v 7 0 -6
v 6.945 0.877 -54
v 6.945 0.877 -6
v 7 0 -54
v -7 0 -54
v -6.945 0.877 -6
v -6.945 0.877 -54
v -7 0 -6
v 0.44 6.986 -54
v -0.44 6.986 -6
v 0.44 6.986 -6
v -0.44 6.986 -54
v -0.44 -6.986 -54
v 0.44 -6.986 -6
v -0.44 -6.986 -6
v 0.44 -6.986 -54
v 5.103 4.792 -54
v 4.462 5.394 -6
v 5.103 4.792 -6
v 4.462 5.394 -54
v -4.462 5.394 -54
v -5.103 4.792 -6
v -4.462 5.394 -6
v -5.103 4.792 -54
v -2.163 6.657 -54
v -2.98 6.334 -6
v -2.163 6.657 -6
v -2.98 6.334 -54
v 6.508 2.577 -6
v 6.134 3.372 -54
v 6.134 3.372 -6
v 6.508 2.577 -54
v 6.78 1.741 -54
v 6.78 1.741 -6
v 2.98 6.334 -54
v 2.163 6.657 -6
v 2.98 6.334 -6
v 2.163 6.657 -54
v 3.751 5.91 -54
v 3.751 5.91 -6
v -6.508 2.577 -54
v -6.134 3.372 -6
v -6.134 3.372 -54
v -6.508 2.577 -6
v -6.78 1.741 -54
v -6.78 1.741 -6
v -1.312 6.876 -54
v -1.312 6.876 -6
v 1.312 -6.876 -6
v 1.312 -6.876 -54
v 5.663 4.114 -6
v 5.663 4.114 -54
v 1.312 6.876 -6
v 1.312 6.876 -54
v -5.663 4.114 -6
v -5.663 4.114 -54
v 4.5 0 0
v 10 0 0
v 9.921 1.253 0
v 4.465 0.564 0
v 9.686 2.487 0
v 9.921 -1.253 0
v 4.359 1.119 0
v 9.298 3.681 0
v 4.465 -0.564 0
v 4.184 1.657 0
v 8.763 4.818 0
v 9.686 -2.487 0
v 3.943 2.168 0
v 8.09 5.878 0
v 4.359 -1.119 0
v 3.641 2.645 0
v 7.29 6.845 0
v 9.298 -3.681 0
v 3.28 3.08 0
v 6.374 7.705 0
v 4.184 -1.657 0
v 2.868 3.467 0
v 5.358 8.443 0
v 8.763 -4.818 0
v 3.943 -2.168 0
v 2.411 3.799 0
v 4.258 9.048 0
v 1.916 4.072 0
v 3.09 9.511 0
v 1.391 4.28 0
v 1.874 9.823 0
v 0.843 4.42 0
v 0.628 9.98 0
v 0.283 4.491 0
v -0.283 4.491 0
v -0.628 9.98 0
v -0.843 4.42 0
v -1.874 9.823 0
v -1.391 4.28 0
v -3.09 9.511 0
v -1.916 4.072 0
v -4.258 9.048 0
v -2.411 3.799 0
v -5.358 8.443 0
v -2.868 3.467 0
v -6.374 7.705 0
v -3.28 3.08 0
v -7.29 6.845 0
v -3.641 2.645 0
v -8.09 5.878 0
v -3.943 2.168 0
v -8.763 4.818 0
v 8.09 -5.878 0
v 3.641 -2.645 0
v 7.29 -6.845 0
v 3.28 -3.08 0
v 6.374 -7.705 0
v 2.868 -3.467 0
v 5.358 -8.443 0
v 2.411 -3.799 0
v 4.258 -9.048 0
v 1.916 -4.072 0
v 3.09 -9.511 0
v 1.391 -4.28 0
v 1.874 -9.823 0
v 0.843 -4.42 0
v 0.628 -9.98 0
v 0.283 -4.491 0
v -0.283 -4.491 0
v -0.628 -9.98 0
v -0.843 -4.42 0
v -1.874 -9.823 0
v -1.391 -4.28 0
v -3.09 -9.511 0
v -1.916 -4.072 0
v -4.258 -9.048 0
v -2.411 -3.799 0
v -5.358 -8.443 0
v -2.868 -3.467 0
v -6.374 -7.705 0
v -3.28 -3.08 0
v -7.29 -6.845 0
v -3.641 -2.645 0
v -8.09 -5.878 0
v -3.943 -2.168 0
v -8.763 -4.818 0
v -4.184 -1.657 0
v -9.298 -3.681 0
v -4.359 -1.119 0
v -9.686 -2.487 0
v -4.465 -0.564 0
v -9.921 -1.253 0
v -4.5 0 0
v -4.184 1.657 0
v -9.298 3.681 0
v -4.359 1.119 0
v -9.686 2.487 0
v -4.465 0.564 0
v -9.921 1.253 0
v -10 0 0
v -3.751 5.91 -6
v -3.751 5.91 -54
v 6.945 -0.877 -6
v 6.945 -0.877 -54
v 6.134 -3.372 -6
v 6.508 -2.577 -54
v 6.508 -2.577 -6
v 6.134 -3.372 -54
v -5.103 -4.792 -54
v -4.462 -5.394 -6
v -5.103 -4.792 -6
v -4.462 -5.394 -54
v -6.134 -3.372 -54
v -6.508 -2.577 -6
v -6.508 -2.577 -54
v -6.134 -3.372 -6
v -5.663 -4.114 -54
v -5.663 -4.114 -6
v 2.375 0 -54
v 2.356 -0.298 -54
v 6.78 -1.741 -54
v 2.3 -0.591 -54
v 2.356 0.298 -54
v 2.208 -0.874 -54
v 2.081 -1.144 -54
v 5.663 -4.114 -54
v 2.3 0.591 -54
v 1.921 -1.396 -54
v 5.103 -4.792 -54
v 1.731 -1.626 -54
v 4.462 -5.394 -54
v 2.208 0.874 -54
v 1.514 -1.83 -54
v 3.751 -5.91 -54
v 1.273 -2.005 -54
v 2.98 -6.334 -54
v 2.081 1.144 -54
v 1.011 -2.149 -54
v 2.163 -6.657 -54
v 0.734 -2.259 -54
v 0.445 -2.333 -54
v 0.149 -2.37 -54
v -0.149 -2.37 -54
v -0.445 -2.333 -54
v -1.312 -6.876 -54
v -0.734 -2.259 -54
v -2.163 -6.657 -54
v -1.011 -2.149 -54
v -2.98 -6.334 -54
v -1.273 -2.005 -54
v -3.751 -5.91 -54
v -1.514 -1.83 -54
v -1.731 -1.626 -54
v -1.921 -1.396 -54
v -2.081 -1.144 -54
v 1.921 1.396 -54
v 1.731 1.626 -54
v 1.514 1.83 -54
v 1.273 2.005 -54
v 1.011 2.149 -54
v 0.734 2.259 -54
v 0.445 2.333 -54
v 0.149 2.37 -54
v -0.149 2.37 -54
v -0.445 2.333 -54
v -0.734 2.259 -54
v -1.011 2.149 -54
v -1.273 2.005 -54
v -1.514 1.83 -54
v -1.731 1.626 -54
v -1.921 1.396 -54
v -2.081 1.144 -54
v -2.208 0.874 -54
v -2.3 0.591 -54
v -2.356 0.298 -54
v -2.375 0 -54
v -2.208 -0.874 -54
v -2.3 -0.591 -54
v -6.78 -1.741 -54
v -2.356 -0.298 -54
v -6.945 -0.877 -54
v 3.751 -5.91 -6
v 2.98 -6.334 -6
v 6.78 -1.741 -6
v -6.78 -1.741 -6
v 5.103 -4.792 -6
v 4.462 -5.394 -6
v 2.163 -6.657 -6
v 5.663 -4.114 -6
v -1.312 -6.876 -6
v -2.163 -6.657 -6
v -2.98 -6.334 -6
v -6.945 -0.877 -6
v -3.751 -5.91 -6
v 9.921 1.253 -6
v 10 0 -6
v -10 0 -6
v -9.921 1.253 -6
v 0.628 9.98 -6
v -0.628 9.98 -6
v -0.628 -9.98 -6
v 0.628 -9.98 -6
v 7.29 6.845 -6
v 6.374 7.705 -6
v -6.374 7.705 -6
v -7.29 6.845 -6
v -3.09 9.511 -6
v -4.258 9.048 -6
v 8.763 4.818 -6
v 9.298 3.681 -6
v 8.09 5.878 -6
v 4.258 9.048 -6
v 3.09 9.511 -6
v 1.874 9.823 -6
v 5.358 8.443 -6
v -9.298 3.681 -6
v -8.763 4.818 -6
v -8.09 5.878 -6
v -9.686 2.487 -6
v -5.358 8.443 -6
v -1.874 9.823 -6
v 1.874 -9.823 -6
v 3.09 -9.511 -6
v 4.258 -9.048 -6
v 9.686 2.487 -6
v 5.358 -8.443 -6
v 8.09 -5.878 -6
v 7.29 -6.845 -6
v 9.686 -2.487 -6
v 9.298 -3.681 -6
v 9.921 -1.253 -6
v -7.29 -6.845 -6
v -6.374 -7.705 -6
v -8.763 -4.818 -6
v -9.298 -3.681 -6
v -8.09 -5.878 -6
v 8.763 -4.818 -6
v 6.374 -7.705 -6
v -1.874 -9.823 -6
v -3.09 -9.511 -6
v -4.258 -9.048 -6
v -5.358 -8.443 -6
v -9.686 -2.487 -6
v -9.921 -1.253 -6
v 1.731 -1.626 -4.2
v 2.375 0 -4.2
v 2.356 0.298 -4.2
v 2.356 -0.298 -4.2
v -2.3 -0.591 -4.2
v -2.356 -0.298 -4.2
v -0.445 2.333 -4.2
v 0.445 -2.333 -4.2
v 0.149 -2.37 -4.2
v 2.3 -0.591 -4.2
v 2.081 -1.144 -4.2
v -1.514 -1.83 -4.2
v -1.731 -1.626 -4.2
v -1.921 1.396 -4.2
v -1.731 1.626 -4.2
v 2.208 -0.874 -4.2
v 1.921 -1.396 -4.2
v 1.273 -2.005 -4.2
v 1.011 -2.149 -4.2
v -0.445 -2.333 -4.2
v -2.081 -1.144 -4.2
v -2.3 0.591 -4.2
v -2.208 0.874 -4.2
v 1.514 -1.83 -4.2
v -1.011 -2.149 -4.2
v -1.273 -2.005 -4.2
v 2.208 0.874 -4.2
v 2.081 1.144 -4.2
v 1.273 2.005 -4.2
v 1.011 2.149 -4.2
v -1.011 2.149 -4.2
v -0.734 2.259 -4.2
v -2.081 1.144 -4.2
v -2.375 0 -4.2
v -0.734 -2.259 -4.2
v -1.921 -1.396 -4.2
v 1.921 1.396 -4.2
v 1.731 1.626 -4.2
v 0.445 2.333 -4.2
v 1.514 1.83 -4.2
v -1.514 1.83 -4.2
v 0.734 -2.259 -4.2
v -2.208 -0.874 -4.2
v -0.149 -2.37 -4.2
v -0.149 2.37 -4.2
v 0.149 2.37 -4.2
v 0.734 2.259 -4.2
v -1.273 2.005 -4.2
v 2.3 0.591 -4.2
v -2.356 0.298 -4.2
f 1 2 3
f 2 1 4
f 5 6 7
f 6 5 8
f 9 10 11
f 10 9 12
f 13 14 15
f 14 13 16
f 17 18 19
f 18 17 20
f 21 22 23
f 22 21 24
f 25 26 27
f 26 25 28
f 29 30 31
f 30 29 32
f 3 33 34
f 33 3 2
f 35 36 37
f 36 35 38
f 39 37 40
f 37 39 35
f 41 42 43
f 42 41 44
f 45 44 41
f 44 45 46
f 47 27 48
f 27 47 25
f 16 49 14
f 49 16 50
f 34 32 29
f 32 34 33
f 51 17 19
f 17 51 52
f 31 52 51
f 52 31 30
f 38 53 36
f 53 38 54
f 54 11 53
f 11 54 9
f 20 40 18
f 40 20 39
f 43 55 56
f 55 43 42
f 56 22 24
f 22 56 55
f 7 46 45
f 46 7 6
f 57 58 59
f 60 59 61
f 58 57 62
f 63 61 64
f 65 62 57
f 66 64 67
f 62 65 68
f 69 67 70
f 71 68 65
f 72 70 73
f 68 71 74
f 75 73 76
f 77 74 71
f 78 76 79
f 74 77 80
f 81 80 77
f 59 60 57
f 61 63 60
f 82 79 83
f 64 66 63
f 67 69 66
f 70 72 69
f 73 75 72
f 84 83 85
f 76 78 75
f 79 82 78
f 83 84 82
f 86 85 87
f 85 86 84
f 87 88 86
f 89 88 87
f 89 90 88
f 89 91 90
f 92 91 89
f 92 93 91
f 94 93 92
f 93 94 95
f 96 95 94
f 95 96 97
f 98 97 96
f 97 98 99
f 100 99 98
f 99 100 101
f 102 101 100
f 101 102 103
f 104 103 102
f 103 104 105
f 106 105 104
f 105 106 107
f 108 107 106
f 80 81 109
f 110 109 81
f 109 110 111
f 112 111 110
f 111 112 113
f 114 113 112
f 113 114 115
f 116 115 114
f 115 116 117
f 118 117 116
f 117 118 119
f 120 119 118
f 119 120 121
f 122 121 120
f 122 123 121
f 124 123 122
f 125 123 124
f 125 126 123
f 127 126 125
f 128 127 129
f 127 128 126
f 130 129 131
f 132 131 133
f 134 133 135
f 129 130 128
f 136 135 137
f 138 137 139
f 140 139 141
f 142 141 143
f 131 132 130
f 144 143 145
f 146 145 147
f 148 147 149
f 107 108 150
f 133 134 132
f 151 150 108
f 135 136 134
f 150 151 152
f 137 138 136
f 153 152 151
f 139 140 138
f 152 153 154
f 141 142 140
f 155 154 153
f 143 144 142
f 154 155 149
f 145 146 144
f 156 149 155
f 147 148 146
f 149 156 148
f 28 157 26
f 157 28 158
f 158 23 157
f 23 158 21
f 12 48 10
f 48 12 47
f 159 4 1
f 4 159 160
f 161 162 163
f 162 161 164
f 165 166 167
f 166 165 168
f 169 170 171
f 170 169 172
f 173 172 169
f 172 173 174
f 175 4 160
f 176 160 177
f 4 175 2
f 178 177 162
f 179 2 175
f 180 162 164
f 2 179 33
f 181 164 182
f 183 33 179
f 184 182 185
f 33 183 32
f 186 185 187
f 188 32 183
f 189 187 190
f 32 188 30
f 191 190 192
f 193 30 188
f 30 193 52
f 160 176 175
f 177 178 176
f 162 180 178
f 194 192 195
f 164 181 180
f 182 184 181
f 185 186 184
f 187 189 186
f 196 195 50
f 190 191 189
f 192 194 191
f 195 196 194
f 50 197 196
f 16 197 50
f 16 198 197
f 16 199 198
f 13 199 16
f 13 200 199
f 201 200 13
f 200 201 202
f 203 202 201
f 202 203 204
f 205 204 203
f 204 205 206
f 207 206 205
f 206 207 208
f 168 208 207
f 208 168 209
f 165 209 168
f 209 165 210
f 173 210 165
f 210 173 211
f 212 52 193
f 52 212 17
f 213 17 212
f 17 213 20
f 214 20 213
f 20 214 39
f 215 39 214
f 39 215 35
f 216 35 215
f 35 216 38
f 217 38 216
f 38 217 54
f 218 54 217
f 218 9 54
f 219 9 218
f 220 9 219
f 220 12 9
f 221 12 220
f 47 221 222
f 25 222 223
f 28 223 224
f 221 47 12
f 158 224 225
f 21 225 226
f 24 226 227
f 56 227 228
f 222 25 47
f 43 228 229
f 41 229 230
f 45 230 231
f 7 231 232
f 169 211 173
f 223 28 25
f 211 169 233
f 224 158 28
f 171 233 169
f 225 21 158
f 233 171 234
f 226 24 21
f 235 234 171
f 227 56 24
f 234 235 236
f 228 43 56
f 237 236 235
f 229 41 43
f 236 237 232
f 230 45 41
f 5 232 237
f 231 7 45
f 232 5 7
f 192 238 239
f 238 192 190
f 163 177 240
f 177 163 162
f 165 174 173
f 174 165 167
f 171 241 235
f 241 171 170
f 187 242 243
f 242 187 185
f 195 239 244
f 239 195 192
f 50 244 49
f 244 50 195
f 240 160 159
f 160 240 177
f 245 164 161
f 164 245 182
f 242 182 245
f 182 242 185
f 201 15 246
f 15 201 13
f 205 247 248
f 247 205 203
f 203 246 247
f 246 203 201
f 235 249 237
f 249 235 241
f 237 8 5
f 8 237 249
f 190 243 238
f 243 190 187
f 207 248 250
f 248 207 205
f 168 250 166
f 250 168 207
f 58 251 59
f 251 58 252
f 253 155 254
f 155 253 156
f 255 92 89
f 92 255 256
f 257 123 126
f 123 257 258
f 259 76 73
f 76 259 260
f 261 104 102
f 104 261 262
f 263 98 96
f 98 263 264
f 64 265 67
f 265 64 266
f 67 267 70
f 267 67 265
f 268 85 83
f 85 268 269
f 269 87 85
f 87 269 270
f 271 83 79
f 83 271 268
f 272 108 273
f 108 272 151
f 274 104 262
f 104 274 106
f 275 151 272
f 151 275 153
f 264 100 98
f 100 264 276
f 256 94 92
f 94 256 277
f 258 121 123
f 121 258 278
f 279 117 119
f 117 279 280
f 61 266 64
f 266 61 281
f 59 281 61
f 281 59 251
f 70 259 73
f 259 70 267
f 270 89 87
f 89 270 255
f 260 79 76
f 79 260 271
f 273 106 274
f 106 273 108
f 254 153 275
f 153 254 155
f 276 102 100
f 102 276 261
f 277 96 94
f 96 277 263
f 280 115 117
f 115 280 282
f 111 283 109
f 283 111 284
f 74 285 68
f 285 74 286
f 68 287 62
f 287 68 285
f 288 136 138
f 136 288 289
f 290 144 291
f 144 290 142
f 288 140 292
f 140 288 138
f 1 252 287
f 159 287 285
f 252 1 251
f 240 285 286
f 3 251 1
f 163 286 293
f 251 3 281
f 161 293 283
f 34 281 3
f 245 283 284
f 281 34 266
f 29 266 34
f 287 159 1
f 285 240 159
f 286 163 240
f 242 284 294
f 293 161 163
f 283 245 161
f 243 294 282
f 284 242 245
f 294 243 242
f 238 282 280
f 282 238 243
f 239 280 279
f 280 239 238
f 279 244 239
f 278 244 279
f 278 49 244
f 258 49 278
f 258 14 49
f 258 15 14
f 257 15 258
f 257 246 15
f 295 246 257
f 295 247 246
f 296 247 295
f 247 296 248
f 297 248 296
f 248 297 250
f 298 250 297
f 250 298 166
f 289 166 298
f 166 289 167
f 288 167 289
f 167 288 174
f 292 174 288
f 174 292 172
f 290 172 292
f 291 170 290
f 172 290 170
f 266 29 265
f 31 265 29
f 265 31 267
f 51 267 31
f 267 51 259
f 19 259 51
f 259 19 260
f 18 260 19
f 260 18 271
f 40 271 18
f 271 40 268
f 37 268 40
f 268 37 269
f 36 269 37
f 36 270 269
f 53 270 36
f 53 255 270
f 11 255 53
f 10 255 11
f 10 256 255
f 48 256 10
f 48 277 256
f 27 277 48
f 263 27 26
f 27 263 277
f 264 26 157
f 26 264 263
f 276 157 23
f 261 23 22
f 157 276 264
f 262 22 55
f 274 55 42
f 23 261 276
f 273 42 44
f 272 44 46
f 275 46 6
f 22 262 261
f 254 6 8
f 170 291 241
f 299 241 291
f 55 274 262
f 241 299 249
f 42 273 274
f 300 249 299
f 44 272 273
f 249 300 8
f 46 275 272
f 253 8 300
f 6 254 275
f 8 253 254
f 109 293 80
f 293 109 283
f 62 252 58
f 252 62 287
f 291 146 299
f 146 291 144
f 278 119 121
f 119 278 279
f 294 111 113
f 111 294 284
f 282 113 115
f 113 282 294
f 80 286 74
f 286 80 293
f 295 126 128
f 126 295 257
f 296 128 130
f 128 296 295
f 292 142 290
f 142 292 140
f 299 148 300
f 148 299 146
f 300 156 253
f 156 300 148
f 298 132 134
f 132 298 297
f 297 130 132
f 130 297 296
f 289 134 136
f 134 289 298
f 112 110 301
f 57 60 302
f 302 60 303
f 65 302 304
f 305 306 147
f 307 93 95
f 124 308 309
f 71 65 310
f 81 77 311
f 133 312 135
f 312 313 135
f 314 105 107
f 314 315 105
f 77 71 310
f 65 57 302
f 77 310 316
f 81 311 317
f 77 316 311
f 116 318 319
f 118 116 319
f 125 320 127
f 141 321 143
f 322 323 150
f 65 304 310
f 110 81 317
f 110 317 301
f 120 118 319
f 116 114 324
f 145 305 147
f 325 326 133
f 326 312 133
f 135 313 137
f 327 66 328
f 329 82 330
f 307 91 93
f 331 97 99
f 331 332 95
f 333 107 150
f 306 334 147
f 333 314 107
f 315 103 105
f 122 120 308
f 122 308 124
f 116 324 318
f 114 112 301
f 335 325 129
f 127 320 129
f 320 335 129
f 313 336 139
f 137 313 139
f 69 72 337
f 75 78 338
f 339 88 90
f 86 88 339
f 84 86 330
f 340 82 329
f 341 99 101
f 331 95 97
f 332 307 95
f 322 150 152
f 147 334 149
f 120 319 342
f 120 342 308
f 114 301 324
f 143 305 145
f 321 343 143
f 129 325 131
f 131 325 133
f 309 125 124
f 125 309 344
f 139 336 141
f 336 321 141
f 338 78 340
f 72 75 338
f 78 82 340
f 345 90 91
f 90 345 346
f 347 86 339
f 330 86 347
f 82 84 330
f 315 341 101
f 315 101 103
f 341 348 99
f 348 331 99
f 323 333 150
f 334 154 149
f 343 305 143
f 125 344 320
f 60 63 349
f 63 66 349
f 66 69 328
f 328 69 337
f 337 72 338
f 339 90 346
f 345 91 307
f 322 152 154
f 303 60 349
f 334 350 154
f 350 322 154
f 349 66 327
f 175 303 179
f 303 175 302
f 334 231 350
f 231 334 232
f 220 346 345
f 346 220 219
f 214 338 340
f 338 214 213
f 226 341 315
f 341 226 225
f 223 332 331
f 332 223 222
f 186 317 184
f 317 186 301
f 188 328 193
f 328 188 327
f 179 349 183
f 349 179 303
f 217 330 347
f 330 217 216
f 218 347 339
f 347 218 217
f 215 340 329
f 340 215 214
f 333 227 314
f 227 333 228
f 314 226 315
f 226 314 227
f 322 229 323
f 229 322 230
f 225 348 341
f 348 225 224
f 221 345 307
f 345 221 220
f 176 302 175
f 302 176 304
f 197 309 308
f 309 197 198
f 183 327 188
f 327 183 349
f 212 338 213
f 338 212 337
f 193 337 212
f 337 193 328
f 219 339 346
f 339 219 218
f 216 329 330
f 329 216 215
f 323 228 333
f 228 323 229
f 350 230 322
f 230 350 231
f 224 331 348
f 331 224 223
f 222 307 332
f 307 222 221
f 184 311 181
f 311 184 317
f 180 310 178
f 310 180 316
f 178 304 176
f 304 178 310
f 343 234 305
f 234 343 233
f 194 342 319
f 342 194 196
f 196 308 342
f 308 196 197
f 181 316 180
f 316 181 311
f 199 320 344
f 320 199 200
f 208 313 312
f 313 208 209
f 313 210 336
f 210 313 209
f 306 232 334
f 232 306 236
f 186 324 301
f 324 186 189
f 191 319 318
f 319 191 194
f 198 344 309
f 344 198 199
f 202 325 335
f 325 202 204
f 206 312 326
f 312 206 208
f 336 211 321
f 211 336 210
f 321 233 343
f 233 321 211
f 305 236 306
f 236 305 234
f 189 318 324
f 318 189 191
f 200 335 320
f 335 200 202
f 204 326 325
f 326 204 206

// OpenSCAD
$fn = 50;


difference() {
	union() {
		translate(v = [0, 0, -54.0000000000]) {
			cylinder(h = 54, r = 7.0000000000);
		}
		translate(v = [0, 0, -6.0000000000]) {
			cylinder(h = 6, r = 10.0000000000);
		}
	}
	union() {
		translate(v = [0, 0, 0]) {
			rotate(a = [0, 0, 0]) {
				difference() {
					union() {
						#translate(v = [0, 0, -54.0000000000]) {
							cylinder(h = 54, r = 2.2500000000);
						}
						#translate(v = [0, 0, -4.2000000000]) {
							cylinder(h = 4.2000000000, r1 = 2.3750000000, r2 = 4.5000000000);
						}
						#translate(v = [0, 0, -54.0000000000]) {
							cylinder(h = 54, r = 2.3750000000);
						}
						#translate(v = [0, 0, -54.0000000000]) {
							cylinder(h = 54, r = 2.2500000000);
						}
					}
					union();
				}
			}
		}
	}
}
